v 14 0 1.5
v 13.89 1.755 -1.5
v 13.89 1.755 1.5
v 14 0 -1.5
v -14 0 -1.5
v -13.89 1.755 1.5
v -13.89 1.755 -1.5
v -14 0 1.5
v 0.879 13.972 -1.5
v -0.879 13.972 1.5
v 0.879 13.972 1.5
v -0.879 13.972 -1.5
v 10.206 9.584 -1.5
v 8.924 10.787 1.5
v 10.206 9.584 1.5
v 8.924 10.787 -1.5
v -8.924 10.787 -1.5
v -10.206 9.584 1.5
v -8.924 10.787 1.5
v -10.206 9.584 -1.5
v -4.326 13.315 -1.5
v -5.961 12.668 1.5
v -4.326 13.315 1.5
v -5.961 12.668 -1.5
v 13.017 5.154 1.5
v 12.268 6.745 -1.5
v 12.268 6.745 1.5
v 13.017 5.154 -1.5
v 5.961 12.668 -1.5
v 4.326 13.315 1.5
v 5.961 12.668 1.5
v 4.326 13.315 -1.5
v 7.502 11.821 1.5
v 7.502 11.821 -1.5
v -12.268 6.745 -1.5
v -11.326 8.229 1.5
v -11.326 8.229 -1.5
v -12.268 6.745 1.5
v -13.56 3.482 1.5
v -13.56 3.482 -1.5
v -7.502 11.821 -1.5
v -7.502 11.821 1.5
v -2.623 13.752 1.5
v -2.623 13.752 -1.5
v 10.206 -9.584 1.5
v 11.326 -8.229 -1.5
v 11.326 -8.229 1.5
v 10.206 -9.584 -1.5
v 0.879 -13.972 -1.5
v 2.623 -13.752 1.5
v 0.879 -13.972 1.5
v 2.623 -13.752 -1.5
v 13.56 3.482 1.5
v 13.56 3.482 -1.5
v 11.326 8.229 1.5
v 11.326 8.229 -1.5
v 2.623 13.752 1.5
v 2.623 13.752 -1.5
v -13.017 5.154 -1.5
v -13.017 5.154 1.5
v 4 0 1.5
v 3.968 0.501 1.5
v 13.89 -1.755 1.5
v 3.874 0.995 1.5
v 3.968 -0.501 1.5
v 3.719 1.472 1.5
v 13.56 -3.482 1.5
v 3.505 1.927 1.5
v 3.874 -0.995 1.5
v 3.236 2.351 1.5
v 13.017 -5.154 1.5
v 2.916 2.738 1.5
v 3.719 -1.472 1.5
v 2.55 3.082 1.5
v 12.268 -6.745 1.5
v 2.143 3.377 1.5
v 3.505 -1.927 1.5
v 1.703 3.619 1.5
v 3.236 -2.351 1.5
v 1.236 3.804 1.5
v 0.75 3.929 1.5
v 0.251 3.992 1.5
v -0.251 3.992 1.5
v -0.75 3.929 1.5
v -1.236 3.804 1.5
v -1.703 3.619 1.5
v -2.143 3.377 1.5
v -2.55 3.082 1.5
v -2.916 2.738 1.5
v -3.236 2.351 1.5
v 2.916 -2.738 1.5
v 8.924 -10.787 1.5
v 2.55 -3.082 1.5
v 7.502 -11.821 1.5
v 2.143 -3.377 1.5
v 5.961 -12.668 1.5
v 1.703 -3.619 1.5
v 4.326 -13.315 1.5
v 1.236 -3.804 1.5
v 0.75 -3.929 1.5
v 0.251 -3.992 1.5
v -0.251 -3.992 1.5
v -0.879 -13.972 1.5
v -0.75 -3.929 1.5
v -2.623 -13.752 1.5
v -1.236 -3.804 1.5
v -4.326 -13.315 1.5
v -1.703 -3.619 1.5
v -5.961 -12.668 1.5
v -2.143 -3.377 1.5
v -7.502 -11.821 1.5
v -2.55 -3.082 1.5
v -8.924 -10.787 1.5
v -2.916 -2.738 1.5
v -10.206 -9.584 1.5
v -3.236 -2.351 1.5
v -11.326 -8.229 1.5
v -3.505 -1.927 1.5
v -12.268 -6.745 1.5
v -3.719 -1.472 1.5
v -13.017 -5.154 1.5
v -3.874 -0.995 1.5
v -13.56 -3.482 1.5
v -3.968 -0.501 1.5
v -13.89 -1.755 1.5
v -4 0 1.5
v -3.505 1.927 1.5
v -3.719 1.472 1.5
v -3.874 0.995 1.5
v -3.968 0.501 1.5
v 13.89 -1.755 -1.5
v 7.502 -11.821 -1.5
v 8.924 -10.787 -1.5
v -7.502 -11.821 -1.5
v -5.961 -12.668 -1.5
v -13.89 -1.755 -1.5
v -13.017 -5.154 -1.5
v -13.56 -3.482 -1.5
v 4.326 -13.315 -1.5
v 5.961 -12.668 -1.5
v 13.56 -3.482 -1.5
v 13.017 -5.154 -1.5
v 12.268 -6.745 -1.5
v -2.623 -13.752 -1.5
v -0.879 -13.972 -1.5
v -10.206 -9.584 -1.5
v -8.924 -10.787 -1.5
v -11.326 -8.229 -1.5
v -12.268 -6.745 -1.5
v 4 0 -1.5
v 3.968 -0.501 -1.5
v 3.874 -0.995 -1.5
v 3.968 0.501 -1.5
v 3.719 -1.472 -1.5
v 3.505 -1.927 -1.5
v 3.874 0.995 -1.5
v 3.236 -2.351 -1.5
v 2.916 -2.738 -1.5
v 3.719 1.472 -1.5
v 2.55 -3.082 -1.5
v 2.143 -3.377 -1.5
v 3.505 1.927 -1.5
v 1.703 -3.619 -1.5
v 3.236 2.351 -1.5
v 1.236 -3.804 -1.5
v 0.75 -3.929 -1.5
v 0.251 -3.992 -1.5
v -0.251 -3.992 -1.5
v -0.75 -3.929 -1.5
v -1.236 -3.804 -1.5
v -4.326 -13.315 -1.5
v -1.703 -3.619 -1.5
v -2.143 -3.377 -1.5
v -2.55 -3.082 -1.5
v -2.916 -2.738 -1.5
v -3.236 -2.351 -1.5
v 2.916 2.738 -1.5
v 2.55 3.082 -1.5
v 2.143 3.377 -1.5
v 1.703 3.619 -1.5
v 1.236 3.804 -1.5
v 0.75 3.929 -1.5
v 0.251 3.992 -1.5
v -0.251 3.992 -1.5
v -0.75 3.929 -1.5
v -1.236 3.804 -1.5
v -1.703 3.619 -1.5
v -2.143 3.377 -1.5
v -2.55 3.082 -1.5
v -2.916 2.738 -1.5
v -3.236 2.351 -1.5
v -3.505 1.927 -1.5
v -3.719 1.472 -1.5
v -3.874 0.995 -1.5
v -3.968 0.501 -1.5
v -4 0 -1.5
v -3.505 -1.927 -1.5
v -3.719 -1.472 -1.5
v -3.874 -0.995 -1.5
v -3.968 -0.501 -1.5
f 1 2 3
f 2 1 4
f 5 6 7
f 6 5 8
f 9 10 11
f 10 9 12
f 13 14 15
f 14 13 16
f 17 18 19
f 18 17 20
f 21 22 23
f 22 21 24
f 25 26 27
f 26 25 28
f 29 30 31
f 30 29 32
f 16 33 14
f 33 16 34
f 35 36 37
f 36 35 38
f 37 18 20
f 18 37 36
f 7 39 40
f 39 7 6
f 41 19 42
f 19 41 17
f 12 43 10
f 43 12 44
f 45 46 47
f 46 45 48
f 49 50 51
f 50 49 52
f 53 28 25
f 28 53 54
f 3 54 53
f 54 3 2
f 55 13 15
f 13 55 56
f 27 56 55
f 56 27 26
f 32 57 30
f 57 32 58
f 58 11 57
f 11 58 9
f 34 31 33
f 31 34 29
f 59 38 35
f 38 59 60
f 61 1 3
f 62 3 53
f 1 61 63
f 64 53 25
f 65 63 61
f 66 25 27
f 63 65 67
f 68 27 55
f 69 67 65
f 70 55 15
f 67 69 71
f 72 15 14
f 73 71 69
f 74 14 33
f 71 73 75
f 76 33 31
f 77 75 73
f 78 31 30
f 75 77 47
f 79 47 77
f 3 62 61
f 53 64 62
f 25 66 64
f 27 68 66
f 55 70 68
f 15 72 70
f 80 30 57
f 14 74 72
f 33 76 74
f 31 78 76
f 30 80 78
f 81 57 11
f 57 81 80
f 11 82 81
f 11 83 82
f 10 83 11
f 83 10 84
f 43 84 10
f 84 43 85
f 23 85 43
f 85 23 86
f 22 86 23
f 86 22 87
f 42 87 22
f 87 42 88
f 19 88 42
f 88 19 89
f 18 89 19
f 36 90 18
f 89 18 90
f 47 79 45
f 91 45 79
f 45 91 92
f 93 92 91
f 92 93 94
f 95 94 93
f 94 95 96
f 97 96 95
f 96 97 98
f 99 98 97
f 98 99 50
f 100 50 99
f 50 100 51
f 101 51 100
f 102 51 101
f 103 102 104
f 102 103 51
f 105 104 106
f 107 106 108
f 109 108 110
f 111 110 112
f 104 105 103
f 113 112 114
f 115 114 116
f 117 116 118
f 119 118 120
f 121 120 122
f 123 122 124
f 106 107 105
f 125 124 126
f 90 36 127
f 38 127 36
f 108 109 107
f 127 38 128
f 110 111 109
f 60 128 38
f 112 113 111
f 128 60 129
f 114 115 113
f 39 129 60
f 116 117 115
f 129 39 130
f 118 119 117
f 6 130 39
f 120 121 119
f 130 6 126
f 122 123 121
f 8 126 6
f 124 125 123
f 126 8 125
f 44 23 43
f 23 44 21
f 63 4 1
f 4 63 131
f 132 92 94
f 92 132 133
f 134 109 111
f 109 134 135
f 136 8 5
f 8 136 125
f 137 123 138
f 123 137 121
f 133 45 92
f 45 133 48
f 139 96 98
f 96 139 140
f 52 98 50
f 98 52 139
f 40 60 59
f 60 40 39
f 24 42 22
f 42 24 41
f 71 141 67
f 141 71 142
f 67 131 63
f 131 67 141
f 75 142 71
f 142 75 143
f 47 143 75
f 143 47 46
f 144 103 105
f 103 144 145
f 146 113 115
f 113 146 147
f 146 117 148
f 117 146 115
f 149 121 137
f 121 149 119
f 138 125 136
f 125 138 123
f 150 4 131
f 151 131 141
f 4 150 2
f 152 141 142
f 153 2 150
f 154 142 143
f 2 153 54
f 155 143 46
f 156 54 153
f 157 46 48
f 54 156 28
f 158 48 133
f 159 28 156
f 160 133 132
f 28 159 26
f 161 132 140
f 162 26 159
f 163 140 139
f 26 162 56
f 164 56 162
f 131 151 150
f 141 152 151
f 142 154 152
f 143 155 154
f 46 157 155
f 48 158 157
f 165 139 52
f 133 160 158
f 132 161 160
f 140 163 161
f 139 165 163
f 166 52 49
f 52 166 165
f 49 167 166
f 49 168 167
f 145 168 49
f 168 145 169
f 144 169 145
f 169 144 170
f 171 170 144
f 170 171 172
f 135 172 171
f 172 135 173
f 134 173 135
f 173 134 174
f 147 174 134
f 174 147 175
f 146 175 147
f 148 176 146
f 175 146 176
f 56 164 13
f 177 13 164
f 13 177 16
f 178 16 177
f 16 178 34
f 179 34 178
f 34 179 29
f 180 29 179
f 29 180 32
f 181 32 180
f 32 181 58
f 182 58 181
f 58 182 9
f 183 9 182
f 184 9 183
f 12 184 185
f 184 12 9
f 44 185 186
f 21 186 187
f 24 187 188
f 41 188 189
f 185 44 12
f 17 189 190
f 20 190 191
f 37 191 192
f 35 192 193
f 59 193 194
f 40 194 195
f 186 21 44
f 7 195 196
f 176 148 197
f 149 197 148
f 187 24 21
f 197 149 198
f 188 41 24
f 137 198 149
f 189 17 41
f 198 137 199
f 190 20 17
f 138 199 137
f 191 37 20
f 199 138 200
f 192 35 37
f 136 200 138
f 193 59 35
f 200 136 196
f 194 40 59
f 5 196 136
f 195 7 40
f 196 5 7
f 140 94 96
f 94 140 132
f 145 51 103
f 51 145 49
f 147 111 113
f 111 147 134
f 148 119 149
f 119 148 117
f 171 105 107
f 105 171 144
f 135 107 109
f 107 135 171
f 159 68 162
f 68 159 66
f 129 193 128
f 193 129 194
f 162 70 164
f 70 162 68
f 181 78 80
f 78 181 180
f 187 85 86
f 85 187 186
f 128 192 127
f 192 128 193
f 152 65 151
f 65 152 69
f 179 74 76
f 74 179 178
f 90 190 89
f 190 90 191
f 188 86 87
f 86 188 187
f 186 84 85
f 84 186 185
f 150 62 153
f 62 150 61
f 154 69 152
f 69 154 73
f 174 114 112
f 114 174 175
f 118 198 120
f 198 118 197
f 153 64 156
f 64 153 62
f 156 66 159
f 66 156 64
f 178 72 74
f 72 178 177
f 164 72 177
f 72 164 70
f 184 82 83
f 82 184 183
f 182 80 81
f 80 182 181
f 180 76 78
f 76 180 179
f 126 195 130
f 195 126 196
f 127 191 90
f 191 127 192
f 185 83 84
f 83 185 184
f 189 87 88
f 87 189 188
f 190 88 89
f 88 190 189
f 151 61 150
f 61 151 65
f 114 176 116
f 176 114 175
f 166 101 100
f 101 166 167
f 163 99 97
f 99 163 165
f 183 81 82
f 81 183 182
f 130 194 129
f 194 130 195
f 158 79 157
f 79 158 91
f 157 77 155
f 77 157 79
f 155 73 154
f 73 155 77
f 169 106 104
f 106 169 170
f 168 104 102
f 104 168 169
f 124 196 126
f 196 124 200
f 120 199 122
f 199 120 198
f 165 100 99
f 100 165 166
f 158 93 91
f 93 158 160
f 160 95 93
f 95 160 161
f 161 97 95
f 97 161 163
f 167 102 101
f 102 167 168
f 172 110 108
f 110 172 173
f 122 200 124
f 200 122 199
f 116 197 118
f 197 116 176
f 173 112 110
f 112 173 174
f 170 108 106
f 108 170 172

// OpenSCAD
$fn = 50;


difference() {
	union() {
		translate(v = [0, 0, -1.5000000000]) {
			cylinder(h = 3, r = 14.0000000000);
		}
	}
	union() {
		translate(v = [0, 0, -100.0000000000]) {
			cylinder(h = 200, r = 4.0000000000);
		}
	}
}
